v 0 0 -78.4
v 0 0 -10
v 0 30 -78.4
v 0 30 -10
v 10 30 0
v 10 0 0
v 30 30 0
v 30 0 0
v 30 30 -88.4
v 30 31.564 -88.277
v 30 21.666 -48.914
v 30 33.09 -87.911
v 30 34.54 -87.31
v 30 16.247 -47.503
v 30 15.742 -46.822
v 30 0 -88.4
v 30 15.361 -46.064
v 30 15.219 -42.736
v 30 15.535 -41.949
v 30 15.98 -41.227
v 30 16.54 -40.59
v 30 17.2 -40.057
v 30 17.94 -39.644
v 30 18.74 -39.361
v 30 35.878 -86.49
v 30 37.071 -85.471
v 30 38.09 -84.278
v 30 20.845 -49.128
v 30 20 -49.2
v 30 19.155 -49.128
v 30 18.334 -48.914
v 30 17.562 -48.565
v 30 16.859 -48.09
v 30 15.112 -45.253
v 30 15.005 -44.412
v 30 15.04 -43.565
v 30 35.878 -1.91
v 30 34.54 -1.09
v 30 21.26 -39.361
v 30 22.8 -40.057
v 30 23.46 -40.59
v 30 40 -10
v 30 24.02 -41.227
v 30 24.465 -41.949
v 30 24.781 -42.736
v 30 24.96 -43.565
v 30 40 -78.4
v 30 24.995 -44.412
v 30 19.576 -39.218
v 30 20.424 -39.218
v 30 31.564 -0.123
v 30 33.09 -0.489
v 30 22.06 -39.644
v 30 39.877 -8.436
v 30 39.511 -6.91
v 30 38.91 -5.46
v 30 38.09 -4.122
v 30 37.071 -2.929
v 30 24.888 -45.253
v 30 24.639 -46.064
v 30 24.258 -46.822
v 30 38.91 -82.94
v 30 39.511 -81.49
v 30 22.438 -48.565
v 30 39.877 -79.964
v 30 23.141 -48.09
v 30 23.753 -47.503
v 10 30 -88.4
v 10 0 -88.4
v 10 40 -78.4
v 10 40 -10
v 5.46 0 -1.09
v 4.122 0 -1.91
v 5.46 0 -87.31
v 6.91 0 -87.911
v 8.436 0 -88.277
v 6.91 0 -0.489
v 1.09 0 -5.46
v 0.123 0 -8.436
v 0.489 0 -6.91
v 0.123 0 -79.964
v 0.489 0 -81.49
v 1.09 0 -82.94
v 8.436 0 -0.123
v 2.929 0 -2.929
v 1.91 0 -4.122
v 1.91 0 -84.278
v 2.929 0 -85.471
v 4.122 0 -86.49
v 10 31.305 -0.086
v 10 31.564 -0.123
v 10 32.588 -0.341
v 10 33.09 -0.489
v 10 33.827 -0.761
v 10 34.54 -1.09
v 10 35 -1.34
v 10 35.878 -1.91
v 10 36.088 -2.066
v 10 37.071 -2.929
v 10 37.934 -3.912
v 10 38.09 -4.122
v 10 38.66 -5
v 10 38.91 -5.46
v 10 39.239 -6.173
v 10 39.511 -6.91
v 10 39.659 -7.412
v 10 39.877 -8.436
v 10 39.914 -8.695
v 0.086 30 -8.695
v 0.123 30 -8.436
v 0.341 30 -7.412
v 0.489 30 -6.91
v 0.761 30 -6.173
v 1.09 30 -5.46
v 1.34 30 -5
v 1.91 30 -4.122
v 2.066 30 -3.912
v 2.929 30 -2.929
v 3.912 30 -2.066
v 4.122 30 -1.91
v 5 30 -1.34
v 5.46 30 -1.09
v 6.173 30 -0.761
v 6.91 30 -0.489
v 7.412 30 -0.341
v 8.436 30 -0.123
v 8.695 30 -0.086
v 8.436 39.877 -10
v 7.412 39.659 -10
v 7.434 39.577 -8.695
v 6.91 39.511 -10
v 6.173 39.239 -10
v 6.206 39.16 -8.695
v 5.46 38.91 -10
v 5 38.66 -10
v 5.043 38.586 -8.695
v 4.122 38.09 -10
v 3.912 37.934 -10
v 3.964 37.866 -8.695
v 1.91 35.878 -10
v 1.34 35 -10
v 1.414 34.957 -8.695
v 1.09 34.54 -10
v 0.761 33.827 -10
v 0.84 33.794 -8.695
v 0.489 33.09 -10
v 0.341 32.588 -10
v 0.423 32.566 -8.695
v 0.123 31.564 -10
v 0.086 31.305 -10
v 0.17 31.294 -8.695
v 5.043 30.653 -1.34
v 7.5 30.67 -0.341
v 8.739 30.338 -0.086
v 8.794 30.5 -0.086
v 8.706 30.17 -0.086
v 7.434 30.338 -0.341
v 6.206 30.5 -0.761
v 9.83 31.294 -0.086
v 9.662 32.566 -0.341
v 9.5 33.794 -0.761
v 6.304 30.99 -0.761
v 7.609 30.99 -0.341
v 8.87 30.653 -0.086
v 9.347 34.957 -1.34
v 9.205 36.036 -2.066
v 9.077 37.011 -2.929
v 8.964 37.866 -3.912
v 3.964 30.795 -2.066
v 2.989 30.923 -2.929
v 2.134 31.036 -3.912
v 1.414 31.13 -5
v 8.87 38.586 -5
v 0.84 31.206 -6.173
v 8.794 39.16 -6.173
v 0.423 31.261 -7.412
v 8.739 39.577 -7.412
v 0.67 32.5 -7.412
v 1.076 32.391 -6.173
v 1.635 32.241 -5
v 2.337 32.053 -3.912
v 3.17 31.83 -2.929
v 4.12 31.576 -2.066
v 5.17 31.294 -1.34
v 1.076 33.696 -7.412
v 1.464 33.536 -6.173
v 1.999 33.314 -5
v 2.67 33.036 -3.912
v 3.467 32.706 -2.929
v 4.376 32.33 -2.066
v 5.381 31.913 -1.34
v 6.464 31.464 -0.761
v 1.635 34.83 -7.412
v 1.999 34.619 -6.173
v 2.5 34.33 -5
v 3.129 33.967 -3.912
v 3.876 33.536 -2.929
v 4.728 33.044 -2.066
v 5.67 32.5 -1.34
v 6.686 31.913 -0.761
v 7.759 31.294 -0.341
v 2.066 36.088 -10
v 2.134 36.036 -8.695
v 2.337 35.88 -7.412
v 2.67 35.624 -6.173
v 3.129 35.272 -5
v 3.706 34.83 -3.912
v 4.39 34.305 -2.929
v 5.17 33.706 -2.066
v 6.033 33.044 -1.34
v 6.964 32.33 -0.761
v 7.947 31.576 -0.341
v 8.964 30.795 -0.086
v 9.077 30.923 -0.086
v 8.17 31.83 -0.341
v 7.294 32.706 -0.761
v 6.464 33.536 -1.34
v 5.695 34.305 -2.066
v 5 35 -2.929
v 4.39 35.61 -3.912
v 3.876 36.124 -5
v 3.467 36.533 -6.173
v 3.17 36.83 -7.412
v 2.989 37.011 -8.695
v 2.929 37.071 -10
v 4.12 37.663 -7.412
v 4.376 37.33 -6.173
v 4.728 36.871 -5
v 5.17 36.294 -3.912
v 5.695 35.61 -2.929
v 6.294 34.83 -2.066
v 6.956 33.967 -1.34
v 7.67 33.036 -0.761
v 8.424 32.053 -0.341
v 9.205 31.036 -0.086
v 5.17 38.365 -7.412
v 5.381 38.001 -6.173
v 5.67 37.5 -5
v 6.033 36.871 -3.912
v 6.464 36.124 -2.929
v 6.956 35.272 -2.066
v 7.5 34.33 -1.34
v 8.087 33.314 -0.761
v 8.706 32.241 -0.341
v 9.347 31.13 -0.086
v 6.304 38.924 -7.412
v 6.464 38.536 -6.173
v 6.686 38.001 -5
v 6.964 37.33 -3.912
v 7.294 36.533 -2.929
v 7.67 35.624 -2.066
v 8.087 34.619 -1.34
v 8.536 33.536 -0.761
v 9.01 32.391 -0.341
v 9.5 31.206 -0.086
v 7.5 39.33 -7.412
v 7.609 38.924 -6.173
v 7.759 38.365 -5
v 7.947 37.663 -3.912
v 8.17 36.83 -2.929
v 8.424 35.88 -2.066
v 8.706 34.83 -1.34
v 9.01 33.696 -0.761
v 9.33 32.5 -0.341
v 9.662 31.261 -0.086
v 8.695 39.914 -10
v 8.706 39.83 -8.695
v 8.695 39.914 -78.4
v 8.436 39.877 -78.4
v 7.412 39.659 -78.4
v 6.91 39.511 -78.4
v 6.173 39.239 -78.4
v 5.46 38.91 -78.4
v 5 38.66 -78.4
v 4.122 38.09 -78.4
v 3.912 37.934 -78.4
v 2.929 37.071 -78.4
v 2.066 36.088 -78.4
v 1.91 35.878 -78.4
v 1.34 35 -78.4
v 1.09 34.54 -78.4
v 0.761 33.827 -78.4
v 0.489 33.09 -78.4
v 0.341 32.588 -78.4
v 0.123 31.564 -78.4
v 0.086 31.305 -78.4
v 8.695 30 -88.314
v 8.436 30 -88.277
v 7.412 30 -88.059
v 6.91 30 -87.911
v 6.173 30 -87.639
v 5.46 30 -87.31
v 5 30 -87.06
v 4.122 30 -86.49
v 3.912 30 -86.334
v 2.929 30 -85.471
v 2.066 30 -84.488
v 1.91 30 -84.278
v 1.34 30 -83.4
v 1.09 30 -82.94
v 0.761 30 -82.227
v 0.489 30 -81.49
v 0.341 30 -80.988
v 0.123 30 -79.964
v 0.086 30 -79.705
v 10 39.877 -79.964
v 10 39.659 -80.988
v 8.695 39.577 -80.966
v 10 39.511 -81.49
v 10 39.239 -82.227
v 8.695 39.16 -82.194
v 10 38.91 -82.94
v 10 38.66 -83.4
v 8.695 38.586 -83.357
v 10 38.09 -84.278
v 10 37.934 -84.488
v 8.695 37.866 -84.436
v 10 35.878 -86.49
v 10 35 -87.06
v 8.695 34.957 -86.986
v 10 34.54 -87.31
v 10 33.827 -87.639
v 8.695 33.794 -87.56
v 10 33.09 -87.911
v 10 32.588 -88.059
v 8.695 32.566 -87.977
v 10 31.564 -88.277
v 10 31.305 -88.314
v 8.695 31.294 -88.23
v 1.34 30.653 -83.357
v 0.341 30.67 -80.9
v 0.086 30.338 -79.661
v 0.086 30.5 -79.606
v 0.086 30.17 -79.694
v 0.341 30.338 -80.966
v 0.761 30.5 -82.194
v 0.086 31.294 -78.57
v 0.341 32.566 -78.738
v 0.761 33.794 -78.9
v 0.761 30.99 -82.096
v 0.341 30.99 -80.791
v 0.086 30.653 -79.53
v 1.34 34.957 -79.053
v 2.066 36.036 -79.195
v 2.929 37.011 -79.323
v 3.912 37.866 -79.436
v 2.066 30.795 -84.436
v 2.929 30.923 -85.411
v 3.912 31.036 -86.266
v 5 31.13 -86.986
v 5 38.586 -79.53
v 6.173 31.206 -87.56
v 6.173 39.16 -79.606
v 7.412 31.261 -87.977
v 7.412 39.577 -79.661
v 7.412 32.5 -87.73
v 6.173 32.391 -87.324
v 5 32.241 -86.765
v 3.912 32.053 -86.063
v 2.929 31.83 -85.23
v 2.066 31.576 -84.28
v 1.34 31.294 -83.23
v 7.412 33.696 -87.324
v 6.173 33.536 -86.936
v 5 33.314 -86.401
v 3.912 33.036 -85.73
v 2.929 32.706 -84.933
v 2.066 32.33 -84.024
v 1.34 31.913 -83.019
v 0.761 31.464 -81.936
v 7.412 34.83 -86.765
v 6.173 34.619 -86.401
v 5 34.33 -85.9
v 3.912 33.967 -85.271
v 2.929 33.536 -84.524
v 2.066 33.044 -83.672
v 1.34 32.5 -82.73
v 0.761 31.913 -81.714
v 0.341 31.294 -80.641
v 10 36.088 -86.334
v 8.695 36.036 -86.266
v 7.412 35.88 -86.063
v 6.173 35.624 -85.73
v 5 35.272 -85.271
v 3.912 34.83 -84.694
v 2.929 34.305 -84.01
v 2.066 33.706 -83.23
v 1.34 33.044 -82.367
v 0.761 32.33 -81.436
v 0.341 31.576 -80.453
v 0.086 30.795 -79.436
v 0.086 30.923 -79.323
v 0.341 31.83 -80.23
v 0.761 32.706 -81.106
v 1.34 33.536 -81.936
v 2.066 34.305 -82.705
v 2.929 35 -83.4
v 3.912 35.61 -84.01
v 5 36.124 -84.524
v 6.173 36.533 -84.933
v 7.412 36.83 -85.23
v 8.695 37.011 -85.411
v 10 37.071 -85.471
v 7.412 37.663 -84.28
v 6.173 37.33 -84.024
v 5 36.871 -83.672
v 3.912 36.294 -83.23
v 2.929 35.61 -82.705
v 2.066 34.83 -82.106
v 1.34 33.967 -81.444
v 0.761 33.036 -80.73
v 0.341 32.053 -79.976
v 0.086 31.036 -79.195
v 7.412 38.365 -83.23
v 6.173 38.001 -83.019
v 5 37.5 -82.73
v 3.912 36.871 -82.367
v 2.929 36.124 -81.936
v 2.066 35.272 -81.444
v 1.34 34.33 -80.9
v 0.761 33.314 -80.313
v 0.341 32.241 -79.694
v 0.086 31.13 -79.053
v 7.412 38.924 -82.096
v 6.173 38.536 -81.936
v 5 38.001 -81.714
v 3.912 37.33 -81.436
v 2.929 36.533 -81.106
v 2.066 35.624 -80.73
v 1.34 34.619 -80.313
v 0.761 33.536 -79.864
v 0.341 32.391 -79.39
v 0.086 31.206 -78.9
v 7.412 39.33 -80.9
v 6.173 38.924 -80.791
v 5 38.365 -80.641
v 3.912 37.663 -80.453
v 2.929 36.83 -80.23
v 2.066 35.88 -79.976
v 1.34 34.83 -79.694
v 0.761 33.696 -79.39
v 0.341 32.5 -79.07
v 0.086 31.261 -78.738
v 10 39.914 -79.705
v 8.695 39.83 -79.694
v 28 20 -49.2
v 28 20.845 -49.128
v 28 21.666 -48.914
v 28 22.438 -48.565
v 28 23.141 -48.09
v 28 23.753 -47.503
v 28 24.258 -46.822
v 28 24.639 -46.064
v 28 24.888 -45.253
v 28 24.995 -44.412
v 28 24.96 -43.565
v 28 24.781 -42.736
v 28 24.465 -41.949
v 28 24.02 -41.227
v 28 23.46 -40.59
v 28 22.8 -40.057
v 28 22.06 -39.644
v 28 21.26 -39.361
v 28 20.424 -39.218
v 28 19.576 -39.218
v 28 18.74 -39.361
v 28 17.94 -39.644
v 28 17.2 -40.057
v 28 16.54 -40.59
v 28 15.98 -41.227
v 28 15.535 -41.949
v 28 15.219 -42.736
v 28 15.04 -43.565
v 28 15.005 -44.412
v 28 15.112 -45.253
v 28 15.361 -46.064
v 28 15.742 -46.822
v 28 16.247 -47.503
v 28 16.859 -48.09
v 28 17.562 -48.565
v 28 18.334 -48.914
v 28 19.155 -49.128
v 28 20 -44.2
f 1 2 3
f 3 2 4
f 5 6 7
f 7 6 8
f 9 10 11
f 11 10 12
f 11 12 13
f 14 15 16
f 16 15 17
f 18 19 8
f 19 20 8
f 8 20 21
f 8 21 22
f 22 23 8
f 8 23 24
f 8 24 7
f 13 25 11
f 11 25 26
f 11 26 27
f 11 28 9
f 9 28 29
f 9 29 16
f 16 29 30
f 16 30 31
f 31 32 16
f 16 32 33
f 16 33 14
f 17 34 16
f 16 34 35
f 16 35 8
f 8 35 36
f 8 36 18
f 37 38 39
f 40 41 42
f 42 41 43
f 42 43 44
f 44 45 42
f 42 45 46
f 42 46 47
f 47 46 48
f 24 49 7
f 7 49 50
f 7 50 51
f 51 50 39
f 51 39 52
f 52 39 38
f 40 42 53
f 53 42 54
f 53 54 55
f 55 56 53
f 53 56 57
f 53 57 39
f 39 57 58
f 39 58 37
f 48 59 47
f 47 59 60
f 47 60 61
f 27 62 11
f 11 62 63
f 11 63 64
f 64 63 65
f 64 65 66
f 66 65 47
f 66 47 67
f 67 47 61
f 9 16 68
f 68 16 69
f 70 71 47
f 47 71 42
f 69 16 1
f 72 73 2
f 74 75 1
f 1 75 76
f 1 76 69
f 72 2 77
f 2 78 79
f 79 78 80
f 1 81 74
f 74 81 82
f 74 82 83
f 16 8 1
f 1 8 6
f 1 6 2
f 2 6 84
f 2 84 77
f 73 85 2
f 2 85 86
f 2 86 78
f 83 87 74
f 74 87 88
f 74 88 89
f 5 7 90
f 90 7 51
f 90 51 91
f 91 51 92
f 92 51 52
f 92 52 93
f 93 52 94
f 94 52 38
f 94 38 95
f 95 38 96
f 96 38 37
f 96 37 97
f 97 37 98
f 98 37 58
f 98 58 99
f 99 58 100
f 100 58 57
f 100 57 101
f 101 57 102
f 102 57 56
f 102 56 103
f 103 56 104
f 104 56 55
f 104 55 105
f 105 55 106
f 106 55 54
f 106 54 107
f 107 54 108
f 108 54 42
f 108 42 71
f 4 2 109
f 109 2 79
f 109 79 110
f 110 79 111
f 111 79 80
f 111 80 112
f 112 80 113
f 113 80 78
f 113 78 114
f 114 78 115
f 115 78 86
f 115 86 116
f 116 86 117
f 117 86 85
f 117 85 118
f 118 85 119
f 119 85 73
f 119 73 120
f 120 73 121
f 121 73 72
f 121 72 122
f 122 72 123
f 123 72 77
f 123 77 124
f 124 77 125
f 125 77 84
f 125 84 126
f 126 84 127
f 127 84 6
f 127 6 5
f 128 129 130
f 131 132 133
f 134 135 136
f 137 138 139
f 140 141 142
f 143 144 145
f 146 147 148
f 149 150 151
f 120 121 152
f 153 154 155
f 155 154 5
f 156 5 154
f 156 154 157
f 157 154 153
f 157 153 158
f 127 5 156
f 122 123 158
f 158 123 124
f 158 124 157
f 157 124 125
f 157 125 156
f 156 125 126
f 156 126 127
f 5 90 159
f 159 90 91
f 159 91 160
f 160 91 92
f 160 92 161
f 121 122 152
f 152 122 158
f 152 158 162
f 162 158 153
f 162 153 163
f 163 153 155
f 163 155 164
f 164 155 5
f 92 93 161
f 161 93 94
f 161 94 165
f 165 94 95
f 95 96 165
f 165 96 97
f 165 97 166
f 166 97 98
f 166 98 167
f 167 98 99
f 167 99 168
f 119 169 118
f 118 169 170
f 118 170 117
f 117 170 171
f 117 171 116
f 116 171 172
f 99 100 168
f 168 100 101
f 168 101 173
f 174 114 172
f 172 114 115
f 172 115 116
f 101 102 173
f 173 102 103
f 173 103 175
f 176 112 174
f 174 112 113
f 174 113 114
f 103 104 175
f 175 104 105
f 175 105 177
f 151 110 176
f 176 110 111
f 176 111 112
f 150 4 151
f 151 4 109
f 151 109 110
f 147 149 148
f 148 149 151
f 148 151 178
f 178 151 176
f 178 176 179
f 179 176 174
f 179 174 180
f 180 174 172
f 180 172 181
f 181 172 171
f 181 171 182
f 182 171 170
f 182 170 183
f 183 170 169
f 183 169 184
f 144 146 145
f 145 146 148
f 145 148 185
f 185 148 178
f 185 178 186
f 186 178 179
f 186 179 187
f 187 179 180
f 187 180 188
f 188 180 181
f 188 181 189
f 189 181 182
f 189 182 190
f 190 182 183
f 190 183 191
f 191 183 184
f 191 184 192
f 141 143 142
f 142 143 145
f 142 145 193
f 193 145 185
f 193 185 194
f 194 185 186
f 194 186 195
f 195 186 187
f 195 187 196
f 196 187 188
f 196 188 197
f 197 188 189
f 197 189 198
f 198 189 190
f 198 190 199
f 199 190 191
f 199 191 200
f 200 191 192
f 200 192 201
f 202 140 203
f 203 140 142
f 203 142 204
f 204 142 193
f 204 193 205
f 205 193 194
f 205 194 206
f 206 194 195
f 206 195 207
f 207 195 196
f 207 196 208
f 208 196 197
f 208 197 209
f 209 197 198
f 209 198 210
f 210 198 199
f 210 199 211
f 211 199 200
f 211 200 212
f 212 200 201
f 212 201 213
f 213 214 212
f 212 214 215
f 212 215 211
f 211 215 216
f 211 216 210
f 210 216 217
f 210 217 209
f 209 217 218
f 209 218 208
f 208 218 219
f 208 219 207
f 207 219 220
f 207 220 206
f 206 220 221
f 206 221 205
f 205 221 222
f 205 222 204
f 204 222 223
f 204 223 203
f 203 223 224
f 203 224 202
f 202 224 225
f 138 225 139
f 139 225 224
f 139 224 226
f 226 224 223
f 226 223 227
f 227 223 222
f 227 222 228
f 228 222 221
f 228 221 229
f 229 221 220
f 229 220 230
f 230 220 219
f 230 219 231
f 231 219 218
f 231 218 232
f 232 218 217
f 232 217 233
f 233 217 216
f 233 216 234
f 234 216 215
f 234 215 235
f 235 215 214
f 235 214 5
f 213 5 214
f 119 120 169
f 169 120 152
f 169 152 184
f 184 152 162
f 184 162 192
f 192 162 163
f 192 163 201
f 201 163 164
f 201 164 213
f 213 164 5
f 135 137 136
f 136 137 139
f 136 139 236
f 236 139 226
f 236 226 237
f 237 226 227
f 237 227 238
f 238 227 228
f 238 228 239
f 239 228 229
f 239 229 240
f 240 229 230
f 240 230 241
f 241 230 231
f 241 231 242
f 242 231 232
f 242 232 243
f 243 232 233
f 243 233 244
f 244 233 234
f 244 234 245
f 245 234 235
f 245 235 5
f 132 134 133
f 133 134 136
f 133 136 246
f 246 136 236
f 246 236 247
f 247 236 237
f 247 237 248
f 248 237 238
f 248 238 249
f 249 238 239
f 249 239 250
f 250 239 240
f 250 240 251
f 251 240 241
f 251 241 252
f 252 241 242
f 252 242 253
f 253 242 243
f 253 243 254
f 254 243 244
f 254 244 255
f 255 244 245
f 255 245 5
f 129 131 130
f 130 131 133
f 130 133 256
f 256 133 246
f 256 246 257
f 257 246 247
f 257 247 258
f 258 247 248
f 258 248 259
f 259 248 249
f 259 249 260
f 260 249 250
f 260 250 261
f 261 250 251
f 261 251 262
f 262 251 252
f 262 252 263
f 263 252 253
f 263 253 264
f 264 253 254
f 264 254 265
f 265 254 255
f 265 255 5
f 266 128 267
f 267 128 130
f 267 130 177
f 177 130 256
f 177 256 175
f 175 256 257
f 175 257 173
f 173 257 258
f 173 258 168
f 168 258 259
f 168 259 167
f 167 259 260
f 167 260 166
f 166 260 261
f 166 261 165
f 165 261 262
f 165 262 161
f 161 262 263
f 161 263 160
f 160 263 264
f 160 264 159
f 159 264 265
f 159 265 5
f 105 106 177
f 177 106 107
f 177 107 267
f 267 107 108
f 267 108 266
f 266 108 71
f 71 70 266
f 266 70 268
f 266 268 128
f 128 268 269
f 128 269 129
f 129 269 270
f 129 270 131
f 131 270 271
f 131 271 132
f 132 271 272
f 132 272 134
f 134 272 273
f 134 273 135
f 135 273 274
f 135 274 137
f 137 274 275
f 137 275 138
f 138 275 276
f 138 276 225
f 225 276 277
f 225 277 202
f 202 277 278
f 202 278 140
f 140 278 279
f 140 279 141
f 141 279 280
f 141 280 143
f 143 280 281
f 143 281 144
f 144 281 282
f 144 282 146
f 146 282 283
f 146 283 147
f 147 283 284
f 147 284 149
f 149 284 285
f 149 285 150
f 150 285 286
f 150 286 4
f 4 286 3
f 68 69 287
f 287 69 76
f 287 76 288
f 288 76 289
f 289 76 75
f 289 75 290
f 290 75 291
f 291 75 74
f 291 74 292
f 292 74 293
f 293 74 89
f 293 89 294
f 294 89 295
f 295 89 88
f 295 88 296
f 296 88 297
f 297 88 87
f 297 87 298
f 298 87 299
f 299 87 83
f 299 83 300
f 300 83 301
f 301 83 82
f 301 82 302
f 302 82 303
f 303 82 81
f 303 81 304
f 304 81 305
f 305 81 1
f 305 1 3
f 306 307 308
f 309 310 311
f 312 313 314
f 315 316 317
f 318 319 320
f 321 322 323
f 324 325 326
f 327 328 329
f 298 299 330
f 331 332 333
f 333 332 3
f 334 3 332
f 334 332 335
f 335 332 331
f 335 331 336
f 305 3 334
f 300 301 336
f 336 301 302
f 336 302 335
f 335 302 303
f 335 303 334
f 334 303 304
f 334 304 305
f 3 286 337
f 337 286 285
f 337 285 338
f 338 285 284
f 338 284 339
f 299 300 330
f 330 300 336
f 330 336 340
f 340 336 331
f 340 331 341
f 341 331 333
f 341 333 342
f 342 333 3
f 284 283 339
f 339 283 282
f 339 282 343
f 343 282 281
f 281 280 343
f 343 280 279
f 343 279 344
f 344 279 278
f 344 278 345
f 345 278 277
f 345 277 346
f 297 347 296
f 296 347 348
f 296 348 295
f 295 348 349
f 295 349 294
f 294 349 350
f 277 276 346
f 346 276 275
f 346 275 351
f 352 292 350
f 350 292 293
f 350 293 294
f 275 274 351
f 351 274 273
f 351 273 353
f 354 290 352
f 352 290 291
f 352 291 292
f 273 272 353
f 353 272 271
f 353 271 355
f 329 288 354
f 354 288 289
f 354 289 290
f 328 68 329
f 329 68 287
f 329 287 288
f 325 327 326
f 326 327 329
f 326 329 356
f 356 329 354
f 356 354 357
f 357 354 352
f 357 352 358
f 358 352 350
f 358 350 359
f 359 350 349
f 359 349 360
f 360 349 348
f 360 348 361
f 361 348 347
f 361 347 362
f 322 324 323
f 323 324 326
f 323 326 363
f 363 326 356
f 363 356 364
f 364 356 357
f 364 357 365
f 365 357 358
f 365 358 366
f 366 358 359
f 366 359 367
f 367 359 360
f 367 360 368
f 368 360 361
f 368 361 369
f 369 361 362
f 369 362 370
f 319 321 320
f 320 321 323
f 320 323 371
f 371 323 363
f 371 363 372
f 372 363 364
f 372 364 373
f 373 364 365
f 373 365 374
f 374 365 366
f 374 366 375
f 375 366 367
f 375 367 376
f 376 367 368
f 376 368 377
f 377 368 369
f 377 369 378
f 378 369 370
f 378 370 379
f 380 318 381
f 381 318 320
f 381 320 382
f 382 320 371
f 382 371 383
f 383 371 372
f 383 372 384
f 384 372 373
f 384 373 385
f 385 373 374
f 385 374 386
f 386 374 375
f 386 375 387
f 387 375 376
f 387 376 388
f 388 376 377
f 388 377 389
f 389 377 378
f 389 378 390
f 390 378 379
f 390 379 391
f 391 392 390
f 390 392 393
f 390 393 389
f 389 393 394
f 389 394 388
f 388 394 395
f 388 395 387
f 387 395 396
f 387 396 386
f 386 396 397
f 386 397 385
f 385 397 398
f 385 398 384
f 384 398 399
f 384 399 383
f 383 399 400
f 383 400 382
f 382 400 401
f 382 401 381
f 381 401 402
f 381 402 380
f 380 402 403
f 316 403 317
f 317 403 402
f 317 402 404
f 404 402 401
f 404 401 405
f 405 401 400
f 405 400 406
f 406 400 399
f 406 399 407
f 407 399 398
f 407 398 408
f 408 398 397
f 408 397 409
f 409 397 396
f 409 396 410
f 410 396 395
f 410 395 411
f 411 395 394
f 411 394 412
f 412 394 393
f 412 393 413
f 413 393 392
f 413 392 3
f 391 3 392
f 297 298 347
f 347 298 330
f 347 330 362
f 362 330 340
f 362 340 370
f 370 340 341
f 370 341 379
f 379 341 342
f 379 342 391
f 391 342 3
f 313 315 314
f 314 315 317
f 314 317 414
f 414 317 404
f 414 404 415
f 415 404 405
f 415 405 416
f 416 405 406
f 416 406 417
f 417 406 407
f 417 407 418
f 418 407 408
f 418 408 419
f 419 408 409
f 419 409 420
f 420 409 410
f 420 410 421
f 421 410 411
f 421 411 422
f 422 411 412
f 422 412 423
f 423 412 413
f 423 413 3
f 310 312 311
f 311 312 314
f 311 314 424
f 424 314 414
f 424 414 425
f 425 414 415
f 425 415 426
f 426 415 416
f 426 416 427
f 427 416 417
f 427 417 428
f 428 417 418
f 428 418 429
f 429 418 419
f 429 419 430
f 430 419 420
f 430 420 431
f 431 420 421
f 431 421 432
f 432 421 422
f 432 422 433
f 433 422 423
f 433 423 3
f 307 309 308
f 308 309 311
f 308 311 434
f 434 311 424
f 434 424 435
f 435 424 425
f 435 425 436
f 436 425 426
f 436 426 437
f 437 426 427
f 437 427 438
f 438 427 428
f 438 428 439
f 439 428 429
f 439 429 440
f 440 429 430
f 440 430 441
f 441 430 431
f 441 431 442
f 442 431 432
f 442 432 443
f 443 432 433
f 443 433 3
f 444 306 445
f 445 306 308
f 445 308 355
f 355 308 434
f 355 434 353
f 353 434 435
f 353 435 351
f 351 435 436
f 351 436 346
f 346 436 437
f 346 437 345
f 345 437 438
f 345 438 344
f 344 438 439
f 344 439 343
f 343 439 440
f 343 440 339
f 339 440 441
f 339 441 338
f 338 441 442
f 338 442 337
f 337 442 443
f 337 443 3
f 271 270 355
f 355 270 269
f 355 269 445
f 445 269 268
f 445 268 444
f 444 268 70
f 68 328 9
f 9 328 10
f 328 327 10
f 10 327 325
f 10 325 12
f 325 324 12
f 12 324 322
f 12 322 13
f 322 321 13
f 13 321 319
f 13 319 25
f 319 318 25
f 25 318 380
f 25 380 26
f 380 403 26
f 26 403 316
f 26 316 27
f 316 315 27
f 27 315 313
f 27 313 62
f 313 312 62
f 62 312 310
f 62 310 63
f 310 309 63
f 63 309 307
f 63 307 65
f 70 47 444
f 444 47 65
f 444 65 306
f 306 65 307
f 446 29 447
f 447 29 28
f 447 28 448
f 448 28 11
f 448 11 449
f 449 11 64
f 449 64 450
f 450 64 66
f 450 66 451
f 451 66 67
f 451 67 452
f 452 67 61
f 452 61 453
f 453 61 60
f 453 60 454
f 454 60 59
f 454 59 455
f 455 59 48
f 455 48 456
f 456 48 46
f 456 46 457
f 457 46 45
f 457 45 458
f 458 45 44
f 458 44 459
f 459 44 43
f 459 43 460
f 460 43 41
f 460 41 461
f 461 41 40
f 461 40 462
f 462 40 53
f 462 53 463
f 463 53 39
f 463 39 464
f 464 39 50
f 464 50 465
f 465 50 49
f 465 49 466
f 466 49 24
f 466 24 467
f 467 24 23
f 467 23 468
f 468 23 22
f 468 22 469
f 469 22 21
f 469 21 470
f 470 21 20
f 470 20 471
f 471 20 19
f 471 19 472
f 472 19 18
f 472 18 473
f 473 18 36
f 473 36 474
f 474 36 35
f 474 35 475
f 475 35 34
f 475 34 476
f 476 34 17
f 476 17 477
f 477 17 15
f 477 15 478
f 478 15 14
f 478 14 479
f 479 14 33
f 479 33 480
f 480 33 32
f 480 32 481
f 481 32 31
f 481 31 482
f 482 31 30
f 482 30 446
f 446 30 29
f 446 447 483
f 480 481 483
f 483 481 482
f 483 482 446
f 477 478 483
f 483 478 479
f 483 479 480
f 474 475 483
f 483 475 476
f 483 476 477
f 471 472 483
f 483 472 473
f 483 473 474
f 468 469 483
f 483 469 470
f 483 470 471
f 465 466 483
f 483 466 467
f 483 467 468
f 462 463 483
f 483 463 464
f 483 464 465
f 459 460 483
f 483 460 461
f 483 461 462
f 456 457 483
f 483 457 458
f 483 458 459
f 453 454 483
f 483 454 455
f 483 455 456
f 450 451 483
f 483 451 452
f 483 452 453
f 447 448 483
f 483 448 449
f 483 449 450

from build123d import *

# Parameters (mm, degrees)
SKETCH1_W           = 30
SKETCH1_H           = 88.4
BOSS_EXTRUDE1_DEPTH = 40
FILLET1_R           = 10
SKETCH2_R           = 5
CUT_EXTRUDE1_DEPTH  = 2


with BuildPart() as part:
    # Sketch1 → Boss-Extrude1 (new body)
    with BuildSketch(Plane(origin=(0, 0, 0), x_dir=(1, 0, 0), z_dir=(0, 1, 0))):
        with Locations((15, 44.2)):
            Rectangle(SKETCH1_W, SKETCH1_H)
    extrude(amount=BOSS_EXTRUDE1_DEPTH)

    # Fillet1
    fillet1_edges = [part.edges().sort_by_distance(p)[0] for p in [
        (15, 40, -88.4),
        (0, 40, -44.2),
        (0, 20, -88.4),
        (0, 20, 0),
        (15, 40, 0),
    ]]
    fillet(fillet1_edges, radius=FILLET1_R)

    # Sketch2 → Cut-Extrude1 (cut)
    with BuildSketch(Plane(origin=(30, 0, 0), x_dir=(0, 0, -1), z_dir=(1, 0, 0))):
        with Locations((44.2, 20)):
            Circle(SKETCH2_R)
    extrude(amount=-CUT_EXTRUDE1_DEPTH, mode=Mode.SUBTRACT)


solid = part.part
